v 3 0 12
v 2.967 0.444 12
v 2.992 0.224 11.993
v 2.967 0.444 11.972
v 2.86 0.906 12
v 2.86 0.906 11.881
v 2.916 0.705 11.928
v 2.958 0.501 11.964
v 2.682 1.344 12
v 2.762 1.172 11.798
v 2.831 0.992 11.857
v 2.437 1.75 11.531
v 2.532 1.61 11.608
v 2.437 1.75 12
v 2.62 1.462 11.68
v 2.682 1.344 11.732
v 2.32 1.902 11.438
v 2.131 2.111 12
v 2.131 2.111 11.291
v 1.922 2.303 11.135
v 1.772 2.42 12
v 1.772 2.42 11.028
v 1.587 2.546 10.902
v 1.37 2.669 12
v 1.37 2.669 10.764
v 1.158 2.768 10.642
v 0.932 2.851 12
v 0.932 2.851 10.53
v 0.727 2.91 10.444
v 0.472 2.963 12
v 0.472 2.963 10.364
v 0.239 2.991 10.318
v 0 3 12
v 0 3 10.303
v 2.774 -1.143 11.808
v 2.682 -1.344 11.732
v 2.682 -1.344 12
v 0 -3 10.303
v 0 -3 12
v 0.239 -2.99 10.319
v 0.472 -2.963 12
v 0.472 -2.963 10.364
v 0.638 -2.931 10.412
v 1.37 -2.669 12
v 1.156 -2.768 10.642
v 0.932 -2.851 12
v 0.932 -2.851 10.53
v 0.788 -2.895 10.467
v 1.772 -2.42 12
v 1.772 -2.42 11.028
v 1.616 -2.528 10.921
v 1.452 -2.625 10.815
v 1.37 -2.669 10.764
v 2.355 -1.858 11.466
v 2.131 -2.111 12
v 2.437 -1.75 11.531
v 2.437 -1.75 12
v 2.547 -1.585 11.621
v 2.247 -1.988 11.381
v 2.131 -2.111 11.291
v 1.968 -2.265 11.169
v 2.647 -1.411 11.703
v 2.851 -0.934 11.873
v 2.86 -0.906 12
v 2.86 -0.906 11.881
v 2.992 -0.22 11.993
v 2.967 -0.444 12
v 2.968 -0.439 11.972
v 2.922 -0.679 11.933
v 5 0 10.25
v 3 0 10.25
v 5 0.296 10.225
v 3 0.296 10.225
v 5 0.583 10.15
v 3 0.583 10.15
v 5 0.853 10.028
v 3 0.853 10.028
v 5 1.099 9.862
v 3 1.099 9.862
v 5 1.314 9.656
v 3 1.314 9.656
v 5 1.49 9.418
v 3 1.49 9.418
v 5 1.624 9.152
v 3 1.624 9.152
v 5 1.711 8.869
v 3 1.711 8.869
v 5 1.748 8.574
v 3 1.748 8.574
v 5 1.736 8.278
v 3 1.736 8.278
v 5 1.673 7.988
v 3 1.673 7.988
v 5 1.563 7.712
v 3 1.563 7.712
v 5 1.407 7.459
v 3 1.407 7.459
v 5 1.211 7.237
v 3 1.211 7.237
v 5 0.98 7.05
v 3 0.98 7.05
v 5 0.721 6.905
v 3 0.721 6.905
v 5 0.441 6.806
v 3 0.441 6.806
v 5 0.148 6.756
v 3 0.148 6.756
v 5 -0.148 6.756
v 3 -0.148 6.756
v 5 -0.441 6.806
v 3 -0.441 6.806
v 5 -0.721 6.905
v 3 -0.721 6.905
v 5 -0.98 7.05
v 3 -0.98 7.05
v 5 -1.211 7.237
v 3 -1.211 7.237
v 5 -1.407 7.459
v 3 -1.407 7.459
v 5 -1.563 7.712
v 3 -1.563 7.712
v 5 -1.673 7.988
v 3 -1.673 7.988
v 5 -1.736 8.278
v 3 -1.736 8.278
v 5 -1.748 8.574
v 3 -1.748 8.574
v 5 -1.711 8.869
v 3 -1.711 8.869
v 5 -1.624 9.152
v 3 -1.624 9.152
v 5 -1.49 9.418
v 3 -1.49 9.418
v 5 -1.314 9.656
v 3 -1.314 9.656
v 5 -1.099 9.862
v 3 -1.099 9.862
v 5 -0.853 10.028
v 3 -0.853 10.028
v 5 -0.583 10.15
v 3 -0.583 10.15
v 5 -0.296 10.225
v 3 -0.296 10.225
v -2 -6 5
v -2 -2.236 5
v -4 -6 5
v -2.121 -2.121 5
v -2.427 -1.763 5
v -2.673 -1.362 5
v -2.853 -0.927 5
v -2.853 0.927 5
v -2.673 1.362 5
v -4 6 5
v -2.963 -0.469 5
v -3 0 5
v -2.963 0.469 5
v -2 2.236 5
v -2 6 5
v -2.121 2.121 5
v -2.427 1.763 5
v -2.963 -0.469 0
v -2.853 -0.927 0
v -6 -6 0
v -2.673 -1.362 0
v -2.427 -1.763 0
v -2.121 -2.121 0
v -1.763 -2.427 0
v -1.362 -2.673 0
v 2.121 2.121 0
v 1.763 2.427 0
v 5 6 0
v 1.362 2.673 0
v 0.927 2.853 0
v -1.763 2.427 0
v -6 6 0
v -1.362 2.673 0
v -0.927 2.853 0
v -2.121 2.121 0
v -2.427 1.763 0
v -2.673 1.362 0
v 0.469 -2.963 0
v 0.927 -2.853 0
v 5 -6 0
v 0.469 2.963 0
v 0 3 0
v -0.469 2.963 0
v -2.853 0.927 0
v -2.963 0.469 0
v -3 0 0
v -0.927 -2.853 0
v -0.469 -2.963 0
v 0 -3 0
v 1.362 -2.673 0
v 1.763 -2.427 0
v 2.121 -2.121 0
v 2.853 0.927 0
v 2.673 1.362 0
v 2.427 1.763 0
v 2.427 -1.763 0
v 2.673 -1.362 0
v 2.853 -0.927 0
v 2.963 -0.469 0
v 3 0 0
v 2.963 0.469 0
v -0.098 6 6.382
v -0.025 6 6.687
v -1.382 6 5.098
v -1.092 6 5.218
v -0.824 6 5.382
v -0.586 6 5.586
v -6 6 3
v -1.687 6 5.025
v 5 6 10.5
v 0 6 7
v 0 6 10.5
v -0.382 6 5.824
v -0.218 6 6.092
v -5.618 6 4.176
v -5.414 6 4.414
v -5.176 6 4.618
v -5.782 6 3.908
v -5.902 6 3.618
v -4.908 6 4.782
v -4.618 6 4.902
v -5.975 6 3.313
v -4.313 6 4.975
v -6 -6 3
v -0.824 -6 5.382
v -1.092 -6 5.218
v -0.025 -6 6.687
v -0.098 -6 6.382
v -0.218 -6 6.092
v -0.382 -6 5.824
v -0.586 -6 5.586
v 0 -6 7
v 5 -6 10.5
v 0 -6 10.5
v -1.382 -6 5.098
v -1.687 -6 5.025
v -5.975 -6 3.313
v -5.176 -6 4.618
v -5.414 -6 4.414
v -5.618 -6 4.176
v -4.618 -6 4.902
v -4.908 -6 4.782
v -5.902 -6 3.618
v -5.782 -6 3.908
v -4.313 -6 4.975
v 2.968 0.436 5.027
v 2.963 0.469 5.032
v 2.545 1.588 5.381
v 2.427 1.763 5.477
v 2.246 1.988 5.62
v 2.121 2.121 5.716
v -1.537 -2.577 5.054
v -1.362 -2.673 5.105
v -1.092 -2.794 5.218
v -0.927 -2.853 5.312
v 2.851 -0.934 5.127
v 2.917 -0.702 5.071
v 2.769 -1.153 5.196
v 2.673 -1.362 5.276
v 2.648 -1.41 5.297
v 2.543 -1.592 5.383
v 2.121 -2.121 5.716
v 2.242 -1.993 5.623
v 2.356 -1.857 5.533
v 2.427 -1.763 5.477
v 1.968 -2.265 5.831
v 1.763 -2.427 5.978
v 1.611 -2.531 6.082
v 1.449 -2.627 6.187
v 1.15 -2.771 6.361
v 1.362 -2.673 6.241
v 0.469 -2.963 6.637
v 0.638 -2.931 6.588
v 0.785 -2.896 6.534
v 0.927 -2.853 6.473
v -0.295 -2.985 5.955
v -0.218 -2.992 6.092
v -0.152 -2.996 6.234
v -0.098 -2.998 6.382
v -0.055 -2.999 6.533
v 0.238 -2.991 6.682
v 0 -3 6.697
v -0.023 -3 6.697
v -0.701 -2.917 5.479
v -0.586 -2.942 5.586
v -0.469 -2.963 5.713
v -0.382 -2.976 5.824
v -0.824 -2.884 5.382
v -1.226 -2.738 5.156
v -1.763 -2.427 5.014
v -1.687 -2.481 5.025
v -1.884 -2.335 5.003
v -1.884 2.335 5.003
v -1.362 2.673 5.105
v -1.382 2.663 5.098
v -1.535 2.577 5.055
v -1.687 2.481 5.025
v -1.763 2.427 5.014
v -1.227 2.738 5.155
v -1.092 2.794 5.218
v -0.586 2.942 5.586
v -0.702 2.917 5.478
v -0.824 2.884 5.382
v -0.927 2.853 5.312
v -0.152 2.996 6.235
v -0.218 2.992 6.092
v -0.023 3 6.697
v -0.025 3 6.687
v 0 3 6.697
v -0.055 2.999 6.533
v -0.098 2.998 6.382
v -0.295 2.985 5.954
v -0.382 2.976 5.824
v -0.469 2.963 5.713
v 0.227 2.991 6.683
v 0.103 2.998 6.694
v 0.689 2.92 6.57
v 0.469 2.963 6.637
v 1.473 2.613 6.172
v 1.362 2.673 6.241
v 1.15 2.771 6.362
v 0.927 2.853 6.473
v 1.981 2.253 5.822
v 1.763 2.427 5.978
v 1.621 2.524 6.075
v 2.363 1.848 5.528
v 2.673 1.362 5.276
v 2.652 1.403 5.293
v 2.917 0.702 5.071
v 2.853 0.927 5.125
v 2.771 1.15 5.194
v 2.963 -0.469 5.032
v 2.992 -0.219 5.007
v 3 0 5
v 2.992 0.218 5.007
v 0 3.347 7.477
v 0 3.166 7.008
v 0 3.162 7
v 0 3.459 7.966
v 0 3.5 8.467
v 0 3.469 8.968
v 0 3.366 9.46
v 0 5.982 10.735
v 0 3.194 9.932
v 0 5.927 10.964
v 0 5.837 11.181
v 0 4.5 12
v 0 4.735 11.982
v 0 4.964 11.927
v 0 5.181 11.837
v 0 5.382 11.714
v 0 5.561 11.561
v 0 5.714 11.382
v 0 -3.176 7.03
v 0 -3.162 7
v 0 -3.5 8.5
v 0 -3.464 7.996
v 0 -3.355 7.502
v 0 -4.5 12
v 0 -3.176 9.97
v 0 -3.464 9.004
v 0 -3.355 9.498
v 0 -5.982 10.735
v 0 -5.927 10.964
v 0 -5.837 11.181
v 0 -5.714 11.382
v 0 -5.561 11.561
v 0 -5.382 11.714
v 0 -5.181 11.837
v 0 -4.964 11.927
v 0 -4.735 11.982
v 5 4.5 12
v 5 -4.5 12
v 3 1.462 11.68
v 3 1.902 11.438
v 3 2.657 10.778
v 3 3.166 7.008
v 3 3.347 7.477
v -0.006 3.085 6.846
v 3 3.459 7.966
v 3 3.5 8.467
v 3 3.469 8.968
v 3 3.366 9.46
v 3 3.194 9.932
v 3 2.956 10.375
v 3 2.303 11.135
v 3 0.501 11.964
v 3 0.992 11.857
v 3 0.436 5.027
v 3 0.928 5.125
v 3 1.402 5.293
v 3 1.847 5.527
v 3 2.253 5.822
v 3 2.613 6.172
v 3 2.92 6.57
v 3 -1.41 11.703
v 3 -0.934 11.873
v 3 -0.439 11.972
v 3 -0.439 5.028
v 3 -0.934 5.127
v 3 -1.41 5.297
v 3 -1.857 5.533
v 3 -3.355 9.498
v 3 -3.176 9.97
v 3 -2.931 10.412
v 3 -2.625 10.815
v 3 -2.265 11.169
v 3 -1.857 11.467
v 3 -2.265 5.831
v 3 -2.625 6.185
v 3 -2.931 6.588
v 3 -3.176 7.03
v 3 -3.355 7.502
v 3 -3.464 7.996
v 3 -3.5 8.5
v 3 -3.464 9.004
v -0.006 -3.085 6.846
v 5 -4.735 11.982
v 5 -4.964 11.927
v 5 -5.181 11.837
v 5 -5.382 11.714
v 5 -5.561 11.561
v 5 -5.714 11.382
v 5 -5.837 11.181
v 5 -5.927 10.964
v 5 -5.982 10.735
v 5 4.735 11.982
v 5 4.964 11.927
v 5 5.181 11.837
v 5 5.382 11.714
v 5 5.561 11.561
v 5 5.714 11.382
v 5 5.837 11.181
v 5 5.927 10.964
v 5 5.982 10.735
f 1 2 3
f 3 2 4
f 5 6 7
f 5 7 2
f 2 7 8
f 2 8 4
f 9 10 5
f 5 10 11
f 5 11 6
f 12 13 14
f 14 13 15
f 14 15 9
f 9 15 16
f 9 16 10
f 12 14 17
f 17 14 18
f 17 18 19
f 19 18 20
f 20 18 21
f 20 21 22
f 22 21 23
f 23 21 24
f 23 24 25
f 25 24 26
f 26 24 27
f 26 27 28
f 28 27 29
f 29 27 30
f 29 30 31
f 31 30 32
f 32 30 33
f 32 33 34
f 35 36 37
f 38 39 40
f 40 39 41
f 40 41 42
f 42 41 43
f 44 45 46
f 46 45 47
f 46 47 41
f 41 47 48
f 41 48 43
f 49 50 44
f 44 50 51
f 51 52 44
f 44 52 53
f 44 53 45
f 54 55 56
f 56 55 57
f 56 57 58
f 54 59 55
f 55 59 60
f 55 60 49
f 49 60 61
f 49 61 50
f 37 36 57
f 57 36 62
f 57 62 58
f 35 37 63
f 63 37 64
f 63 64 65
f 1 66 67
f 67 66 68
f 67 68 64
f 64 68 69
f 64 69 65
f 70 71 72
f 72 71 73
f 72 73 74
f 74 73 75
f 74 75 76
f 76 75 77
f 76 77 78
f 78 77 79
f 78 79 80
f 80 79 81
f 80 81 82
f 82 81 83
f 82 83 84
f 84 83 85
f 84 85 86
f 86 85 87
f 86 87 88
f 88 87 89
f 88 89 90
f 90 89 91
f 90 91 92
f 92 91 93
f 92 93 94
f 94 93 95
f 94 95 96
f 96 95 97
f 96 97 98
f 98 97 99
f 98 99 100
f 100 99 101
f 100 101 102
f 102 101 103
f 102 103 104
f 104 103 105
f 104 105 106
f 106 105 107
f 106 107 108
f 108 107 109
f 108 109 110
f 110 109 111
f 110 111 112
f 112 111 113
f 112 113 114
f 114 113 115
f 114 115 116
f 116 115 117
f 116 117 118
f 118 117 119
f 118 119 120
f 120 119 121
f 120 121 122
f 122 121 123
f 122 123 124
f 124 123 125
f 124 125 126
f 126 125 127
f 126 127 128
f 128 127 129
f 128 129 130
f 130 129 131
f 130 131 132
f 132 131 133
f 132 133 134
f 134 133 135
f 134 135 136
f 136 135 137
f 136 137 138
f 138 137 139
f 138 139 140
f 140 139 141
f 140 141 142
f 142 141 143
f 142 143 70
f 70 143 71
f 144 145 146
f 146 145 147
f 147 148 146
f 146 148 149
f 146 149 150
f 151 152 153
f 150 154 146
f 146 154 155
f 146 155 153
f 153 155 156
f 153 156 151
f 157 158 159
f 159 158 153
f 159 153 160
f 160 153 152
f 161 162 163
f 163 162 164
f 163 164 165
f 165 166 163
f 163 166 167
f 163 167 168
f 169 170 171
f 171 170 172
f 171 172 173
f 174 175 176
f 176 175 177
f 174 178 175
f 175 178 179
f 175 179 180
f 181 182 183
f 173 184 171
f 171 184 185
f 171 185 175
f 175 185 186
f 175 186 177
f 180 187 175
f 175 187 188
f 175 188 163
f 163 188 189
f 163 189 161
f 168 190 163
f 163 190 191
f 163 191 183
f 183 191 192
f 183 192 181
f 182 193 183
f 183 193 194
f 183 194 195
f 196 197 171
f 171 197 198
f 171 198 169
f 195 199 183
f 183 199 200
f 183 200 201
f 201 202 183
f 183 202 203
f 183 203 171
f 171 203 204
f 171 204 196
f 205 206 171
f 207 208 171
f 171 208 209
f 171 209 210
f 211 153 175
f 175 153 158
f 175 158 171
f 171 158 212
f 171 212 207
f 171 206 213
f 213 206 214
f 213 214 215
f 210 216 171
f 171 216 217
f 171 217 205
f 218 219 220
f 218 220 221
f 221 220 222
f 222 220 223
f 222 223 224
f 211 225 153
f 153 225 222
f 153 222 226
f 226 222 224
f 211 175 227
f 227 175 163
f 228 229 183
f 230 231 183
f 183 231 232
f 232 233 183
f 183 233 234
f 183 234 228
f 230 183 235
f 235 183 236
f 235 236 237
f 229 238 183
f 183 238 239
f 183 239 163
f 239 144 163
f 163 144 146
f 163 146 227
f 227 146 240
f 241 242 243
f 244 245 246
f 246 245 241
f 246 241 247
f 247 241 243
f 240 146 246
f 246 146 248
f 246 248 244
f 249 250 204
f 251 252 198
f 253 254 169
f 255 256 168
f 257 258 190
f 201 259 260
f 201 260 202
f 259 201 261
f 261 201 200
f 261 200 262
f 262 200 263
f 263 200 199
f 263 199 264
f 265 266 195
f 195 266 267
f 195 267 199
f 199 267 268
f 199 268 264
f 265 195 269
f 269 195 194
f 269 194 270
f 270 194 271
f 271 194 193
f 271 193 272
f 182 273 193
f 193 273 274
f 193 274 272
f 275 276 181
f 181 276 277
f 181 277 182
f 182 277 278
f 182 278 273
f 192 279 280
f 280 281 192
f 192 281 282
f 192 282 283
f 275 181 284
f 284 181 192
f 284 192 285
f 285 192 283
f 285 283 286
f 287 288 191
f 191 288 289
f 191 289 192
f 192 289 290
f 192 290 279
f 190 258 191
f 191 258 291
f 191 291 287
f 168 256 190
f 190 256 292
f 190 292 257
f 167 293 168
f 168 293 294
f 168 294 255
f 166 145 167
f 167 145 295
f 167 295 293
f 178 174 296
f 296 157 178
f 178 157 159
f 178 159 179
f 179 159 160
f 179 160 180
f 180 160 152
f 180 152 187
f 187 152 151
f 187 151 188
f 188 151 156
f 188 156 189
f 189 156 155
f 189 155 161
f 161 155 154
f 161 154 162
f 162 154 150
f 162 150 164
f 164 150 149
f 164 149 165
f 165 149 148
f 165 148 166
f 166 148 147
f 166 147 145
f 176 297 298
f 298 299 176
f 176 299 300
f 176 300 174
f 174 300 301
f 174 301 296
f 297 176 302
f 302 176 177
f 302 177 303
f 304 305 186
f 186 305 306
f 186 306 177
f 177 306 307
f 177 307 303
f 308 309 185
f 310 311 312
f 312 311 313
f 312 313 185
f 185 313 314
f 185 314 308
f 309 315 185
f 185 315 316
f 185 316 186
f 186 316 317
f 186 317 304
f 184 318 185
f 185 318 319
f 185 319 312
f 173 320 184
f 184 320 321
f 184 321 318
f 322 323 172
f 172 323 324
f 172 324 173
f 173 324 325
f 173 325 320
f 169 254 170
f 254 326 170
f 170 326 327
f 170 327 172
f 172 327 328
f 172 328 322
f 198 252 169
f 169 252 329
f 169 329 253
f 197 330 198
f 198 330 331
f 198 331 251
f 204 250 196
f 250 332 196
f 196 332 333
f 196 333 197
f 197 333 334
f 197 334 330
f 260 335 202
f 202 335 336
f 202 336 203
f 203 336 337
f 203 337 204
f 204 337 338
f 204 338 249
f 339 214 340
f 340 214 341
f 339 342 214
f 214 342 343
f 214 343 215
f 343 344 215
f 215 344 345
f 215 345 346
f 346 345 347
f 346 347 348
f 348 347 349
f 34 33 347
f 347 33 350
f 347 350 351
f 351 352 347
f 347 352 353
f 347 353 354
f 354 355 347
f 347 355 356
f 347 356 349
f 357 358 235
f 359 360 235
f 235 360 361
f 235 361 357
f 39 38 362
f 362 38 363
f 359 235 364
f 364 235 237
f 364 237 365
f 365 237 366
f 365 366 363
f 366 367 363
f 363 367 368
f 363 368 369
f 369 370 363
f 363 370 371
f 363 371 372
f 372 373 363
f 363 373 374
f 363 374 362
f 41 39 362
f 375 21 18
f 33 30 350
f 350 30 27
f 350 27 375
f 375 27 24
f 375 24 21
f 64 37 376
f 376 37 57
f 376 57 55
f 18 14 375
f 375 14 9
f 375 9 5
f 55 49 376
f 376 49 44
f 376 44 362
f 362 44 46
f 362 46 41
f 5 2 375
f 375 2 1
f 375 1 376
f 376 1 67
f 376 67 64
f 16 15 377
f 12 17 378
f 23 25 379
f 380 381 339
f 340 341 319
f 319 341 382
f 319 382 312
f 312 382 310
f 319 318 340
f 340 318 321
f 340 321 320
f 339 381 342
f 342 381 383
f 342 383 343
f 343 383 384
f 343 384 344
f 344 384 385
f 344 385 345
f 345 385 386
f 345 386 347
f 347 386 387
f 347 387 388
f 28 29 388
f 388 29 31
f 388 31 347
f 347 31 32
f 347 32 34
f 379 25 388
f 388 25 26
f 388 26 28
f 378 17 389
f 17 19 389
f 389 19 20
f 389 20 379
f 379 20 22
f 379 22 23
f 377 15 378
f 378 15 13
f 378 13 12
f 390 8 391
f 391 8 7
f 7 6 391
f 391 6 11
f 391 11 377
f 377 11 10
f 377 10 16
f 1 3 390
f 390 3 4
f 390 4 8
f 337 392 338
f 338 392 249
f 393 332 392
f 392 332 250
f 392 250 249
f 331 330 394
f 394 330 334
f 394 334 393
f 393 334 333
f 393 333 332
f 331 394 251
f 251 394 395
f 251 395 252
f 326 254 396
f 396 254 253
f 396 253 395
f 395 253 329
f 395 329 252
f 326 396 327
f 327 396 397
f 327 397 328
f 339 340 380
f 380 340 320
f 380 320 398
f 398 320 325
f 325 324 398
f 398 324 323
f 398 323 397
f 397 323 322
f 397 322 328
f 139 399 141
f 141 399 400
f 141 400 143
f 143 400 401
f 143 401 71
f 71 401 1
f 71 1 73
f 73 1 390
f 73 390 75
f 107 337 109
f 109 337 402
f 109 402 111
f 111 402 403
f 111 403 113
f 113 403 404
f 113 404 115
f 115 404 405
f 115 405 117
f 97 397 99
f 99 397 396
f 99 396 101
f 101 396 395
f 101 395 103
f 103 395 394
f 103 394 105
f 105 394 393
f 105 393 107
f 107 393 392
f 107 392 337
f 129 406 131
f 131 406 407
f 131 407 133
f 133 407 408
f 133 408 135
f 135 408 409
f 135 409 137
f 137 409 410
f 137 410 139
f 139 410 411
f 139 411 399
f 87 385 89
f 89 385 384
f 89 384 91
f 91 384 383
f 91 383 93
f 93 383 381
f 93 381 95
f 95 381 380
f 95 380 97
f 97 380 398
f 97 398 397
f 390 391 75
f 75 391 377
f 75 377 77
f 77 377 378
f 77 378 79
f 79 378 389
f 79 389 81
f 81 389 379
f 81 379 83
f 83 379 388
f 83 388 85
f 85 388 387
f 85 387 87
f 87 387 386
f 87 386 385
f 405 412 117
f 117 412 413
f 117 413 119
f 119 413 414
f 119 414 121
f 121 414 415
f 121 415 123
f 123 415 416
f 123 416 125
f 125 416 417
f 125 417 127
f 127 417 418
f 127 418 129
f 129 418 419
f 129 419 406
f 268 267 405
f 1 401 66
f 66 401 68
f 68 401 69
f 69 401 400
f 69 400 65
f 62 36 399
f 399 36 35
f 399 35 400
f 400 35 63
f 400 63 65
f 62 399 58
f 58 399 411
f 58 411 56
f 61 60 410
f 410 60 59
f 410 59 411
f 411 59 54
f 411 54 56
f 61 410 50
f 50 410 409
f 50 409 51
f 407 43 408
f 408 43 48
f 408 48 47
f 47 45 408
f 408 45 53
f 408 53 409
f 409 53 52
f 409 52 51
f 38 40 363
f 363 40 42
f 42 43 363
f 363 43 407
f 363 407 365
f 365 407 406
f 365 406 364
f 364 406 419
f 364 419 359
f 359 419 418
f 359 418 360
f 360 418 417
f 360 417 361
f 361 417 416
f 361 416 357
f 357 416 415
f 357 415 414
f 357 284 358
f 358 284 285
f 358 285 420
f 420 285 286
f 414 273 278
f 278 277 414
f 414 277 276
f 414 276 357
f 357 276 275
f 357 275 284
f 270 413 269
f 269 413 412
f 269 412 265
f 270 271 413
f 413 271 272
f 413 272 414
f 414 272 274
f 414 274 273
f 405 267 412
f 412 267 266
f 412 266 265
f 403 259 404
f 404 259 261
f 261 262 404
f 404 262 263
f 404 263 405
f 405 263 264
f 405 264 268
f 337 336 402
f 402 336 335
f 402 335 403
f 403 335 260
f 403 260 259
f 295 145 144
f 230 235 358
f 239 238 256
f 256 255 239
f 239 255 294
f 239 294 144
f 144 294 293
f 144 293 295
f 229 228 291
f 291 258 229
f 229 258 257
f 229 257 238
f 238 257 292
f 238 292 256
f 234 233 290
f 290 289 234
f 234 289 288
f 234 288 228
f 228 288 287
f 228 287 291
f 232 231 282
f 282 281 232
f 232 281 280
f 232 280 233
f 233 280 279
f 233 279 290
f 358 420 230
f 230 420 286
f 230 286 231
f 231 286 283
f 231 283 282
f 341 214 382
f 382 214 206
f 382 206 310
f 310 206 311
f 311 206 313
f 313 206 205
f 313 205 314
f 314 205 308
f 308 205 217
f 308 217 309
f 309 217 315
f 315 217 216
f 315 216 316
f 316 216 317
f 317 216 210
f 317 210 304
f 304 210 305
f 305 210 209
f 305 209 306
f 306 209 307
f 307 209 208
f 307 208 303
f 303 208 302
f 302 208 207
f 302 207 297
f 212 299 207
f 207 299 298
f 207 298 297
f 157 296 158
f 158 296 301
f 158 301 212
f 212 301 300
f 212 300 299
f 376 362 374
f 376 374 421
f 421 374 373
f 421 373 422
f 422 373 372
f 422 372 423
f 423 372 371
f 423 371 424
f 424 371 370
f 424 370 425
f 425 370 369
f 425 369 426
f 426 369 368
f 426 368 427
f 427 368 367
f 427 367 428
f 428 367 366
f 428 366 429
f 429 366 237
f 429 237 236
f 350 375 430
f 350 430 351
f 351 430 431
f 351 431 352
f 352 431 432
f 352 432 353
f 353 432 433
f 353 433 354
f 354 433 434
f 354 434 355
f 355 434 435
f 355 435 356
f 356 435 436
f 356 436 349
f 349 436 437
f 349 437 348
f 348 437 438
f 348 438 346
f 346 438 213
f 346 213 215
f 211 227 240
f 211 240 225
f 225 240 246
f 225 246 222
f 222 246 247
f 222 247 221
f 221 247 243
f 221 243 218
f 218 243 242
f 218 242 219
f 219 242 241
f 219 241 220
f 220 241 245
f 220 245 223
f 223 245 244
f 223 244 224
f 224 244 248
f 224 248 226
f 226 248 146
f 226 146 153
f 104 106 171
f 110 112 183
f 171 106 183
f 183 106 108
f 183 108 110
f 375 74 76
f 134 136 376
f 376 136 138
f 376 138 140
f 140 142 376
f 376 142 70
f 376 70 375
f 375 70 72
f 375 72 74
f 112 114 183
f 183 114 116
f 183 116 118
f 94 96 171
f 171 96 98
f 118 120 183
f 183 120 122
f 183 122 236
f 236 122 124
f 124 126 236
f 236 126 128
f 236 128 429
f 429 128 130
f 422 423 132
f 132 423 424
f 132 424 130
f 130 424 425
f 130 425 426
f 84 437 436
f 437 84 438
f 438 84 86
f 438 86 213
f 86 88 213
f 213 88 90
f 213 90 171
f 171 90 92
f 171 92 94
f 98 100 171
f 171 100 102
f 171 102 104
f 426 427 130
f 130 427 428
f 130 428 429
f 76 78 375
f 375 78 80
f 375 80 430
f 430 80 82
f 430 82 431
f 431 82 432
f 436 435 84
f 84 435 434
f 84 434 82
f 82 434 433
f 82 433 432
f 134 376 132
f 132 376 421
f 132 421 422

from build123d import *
from build123d.topology import SkipClean

# Parameters (mm, degrees)
SKETCH_1_W          = 12
SKETCH_1_H          = 12
SKETCH_1_R          = 3
EXTRUDE_1_DEPTH     = 5
EXTRUDE_2_DEPTH     = 7
SKETCH_4_R          = 1.75
CUT_EXTRUDE_1_DEPTH = 7
SKETCH_5_R          = 3.5
CUT_EXTRUDE_2_DEPTH = 3
FILLET_1_R          = 2
FILLET_2_R          = 1.5
FILLET_3_R          = 2
SKETCH_6_W          = 51.167953154
SKETCH_6_H          = 21.993207172
CUT_EXTRUDE_3_DEPTH = 1


with BuildPart() as part:
    # 草图1 → 凸台-拉伸1 (new body)
    with BuildSketch(Plane.XY):
        Rectangle(SKETCH_1_W, SKETCH_1_H)
        Circle(SKETCH_1_R, mode=Mode.SUBTRACT)
    extrude(amount=EXTRUDE_1_DEPTH)

    # 草图3 → 凸台-拉伸2 (add)
    with BuildSketch(Plane.XY.offset(5)):
        with BuildLine():
            Line((0, -6), (6, -6))
            Line((6, -6), (6, 6))
            Line((6, 6), (0, 6))
            Line((0, 6), (0, 3))
            ThreePointArc((0, 3), (3, 0), (0, -3))
            Line((0, -3), (0, -6))
        make_face()
    extrude(amount=EXTRUDE_2_DEPTH)

    # 草图4 → 切除-拉伸1 (cut)
    with BuildSketch(Plane.ZY):
        with Locations((8.5, 0)):
            Circle(SKETCH_4_R)
    extrude(amount=-CUT_EXTRUDE_1_DEPTH, mode=Mode.SUBTRACT)

    # 草图5 → 切除-拉伸2 (cut)
    with SkipClean():  # the faces are left unmerged after this step: merging them gives an invalid solid
        with BuildSketch(Plane.ZY):
            with Locations((8.5, 0)):
                Circle(SKETCH_5_R)
        extrude(amount=-CUT_EXTRUDE_2_DEPTH, mode=Mode.SUBTRACT)

    # 圆角1
    # the kernel refuses this fillet: 2 mm, written as the material it adds along each edge
    with BuildSketch(Plane(origin=(0, 2, 5), x_dir=(-1, 0, 0), z_dir=(0, -1, 0))) as fillet_1_piece_1_section:
        with BuildLine():
            CenterArc((FILLET_1_R, -FILLET_1_R), FILLET_1_R, 90, 90)
            Line((0, -FILLET_1_R), (0, 0))
            Line((0, 0), (FILLET_1_R, 0))
        make_face()
    fillet_1_piece_1 = extrude(amount=8, mode=Mode.PRIVATE)
    fillet_1_piece_1 = fillet_1_piece_1 - Plane(origin=(0, 0, 5), x_dir=(1, 0, 0), z_dir=(0, 0, -1)) * Cylinder(3, 24, mode=Mode.PRIVATE)
    fillet_1_piece_1 = fillet_1_piece_1 - Plane(origin=(0, 0, 8.5), x_dir=(0, 0, 1), z_dir=(-1, 0, 0)) * Cylinder(3.5, 24, mode=Mode.PRIVATE)
    add(fillet_1_piece_1)
    with BuildSketch(Plane(origin=(0, 6, 5), x_dir=(-1, 0, 0), z_dir=(0, -1, 0))) as fillet_1_piece_2_section:
        with BuildLine():
            CenterArc((FILLET_1_R, -FILLET_1_R), FILLET_1_R, 90, 90)
            Line((0, -FILLET_1_R), (0, 0))
            Line((0, 0), (FILLET_1_R, 0))
        make_face()
    fillet_1_piece_2 = extrude(amount=8, mode=Mode.PRIVATE)
    fillet_1_piece_2 = fillet_1_piece_2 - Plane(origin=(0, 0, 5), x_dir=(1, 0, 0), z_dir=(0, 0, -1)) * Cylinder(3, 24, mode=Mode.PRIVATE)
    fillet_1_piece_2 = fillet_1_piece_2 - Plane(origin=(0, 0, 8.5), x_dir=(0, 0, 1), z_dir=(-1, 0, 0)) * Cylinder(3.5, 24, mode=Mode.PRIVATE)
    add(fillet_1_piece_2)

    # 圆角2
    fillet_2_edges = [part.edges().sort_by_distance(p)[0] for p in [
        (3, 6, 12),
        (3, -6, 12),
    ]]
    fillet(fillet_2_edges, radius=FILLET_2_R)

    # 圆角3
    fillet_3_edges = [part.edges().sort_by_distance(p)[0] for p in [
        (-6, 0, 5),
    ]]
    fillet(fillet_3_edges, radius=FILLET_3_R)

    # 草图6 → 切除-拉伸3 (cut)
    with BuildSketch(Plane(origin=(6, 0, 0), x_dir=(0, 0, -1), z_dir=(1, 0, 0))):
        with Locations((-8.5, 0)):
            Rectangle(SKETCH_6_W, SKETCH_6_H)
    extrude(amount=-CUT_EXTRUDE_3_DEPTH, mode=Mode.SUBTRACT)


solid = part.part
